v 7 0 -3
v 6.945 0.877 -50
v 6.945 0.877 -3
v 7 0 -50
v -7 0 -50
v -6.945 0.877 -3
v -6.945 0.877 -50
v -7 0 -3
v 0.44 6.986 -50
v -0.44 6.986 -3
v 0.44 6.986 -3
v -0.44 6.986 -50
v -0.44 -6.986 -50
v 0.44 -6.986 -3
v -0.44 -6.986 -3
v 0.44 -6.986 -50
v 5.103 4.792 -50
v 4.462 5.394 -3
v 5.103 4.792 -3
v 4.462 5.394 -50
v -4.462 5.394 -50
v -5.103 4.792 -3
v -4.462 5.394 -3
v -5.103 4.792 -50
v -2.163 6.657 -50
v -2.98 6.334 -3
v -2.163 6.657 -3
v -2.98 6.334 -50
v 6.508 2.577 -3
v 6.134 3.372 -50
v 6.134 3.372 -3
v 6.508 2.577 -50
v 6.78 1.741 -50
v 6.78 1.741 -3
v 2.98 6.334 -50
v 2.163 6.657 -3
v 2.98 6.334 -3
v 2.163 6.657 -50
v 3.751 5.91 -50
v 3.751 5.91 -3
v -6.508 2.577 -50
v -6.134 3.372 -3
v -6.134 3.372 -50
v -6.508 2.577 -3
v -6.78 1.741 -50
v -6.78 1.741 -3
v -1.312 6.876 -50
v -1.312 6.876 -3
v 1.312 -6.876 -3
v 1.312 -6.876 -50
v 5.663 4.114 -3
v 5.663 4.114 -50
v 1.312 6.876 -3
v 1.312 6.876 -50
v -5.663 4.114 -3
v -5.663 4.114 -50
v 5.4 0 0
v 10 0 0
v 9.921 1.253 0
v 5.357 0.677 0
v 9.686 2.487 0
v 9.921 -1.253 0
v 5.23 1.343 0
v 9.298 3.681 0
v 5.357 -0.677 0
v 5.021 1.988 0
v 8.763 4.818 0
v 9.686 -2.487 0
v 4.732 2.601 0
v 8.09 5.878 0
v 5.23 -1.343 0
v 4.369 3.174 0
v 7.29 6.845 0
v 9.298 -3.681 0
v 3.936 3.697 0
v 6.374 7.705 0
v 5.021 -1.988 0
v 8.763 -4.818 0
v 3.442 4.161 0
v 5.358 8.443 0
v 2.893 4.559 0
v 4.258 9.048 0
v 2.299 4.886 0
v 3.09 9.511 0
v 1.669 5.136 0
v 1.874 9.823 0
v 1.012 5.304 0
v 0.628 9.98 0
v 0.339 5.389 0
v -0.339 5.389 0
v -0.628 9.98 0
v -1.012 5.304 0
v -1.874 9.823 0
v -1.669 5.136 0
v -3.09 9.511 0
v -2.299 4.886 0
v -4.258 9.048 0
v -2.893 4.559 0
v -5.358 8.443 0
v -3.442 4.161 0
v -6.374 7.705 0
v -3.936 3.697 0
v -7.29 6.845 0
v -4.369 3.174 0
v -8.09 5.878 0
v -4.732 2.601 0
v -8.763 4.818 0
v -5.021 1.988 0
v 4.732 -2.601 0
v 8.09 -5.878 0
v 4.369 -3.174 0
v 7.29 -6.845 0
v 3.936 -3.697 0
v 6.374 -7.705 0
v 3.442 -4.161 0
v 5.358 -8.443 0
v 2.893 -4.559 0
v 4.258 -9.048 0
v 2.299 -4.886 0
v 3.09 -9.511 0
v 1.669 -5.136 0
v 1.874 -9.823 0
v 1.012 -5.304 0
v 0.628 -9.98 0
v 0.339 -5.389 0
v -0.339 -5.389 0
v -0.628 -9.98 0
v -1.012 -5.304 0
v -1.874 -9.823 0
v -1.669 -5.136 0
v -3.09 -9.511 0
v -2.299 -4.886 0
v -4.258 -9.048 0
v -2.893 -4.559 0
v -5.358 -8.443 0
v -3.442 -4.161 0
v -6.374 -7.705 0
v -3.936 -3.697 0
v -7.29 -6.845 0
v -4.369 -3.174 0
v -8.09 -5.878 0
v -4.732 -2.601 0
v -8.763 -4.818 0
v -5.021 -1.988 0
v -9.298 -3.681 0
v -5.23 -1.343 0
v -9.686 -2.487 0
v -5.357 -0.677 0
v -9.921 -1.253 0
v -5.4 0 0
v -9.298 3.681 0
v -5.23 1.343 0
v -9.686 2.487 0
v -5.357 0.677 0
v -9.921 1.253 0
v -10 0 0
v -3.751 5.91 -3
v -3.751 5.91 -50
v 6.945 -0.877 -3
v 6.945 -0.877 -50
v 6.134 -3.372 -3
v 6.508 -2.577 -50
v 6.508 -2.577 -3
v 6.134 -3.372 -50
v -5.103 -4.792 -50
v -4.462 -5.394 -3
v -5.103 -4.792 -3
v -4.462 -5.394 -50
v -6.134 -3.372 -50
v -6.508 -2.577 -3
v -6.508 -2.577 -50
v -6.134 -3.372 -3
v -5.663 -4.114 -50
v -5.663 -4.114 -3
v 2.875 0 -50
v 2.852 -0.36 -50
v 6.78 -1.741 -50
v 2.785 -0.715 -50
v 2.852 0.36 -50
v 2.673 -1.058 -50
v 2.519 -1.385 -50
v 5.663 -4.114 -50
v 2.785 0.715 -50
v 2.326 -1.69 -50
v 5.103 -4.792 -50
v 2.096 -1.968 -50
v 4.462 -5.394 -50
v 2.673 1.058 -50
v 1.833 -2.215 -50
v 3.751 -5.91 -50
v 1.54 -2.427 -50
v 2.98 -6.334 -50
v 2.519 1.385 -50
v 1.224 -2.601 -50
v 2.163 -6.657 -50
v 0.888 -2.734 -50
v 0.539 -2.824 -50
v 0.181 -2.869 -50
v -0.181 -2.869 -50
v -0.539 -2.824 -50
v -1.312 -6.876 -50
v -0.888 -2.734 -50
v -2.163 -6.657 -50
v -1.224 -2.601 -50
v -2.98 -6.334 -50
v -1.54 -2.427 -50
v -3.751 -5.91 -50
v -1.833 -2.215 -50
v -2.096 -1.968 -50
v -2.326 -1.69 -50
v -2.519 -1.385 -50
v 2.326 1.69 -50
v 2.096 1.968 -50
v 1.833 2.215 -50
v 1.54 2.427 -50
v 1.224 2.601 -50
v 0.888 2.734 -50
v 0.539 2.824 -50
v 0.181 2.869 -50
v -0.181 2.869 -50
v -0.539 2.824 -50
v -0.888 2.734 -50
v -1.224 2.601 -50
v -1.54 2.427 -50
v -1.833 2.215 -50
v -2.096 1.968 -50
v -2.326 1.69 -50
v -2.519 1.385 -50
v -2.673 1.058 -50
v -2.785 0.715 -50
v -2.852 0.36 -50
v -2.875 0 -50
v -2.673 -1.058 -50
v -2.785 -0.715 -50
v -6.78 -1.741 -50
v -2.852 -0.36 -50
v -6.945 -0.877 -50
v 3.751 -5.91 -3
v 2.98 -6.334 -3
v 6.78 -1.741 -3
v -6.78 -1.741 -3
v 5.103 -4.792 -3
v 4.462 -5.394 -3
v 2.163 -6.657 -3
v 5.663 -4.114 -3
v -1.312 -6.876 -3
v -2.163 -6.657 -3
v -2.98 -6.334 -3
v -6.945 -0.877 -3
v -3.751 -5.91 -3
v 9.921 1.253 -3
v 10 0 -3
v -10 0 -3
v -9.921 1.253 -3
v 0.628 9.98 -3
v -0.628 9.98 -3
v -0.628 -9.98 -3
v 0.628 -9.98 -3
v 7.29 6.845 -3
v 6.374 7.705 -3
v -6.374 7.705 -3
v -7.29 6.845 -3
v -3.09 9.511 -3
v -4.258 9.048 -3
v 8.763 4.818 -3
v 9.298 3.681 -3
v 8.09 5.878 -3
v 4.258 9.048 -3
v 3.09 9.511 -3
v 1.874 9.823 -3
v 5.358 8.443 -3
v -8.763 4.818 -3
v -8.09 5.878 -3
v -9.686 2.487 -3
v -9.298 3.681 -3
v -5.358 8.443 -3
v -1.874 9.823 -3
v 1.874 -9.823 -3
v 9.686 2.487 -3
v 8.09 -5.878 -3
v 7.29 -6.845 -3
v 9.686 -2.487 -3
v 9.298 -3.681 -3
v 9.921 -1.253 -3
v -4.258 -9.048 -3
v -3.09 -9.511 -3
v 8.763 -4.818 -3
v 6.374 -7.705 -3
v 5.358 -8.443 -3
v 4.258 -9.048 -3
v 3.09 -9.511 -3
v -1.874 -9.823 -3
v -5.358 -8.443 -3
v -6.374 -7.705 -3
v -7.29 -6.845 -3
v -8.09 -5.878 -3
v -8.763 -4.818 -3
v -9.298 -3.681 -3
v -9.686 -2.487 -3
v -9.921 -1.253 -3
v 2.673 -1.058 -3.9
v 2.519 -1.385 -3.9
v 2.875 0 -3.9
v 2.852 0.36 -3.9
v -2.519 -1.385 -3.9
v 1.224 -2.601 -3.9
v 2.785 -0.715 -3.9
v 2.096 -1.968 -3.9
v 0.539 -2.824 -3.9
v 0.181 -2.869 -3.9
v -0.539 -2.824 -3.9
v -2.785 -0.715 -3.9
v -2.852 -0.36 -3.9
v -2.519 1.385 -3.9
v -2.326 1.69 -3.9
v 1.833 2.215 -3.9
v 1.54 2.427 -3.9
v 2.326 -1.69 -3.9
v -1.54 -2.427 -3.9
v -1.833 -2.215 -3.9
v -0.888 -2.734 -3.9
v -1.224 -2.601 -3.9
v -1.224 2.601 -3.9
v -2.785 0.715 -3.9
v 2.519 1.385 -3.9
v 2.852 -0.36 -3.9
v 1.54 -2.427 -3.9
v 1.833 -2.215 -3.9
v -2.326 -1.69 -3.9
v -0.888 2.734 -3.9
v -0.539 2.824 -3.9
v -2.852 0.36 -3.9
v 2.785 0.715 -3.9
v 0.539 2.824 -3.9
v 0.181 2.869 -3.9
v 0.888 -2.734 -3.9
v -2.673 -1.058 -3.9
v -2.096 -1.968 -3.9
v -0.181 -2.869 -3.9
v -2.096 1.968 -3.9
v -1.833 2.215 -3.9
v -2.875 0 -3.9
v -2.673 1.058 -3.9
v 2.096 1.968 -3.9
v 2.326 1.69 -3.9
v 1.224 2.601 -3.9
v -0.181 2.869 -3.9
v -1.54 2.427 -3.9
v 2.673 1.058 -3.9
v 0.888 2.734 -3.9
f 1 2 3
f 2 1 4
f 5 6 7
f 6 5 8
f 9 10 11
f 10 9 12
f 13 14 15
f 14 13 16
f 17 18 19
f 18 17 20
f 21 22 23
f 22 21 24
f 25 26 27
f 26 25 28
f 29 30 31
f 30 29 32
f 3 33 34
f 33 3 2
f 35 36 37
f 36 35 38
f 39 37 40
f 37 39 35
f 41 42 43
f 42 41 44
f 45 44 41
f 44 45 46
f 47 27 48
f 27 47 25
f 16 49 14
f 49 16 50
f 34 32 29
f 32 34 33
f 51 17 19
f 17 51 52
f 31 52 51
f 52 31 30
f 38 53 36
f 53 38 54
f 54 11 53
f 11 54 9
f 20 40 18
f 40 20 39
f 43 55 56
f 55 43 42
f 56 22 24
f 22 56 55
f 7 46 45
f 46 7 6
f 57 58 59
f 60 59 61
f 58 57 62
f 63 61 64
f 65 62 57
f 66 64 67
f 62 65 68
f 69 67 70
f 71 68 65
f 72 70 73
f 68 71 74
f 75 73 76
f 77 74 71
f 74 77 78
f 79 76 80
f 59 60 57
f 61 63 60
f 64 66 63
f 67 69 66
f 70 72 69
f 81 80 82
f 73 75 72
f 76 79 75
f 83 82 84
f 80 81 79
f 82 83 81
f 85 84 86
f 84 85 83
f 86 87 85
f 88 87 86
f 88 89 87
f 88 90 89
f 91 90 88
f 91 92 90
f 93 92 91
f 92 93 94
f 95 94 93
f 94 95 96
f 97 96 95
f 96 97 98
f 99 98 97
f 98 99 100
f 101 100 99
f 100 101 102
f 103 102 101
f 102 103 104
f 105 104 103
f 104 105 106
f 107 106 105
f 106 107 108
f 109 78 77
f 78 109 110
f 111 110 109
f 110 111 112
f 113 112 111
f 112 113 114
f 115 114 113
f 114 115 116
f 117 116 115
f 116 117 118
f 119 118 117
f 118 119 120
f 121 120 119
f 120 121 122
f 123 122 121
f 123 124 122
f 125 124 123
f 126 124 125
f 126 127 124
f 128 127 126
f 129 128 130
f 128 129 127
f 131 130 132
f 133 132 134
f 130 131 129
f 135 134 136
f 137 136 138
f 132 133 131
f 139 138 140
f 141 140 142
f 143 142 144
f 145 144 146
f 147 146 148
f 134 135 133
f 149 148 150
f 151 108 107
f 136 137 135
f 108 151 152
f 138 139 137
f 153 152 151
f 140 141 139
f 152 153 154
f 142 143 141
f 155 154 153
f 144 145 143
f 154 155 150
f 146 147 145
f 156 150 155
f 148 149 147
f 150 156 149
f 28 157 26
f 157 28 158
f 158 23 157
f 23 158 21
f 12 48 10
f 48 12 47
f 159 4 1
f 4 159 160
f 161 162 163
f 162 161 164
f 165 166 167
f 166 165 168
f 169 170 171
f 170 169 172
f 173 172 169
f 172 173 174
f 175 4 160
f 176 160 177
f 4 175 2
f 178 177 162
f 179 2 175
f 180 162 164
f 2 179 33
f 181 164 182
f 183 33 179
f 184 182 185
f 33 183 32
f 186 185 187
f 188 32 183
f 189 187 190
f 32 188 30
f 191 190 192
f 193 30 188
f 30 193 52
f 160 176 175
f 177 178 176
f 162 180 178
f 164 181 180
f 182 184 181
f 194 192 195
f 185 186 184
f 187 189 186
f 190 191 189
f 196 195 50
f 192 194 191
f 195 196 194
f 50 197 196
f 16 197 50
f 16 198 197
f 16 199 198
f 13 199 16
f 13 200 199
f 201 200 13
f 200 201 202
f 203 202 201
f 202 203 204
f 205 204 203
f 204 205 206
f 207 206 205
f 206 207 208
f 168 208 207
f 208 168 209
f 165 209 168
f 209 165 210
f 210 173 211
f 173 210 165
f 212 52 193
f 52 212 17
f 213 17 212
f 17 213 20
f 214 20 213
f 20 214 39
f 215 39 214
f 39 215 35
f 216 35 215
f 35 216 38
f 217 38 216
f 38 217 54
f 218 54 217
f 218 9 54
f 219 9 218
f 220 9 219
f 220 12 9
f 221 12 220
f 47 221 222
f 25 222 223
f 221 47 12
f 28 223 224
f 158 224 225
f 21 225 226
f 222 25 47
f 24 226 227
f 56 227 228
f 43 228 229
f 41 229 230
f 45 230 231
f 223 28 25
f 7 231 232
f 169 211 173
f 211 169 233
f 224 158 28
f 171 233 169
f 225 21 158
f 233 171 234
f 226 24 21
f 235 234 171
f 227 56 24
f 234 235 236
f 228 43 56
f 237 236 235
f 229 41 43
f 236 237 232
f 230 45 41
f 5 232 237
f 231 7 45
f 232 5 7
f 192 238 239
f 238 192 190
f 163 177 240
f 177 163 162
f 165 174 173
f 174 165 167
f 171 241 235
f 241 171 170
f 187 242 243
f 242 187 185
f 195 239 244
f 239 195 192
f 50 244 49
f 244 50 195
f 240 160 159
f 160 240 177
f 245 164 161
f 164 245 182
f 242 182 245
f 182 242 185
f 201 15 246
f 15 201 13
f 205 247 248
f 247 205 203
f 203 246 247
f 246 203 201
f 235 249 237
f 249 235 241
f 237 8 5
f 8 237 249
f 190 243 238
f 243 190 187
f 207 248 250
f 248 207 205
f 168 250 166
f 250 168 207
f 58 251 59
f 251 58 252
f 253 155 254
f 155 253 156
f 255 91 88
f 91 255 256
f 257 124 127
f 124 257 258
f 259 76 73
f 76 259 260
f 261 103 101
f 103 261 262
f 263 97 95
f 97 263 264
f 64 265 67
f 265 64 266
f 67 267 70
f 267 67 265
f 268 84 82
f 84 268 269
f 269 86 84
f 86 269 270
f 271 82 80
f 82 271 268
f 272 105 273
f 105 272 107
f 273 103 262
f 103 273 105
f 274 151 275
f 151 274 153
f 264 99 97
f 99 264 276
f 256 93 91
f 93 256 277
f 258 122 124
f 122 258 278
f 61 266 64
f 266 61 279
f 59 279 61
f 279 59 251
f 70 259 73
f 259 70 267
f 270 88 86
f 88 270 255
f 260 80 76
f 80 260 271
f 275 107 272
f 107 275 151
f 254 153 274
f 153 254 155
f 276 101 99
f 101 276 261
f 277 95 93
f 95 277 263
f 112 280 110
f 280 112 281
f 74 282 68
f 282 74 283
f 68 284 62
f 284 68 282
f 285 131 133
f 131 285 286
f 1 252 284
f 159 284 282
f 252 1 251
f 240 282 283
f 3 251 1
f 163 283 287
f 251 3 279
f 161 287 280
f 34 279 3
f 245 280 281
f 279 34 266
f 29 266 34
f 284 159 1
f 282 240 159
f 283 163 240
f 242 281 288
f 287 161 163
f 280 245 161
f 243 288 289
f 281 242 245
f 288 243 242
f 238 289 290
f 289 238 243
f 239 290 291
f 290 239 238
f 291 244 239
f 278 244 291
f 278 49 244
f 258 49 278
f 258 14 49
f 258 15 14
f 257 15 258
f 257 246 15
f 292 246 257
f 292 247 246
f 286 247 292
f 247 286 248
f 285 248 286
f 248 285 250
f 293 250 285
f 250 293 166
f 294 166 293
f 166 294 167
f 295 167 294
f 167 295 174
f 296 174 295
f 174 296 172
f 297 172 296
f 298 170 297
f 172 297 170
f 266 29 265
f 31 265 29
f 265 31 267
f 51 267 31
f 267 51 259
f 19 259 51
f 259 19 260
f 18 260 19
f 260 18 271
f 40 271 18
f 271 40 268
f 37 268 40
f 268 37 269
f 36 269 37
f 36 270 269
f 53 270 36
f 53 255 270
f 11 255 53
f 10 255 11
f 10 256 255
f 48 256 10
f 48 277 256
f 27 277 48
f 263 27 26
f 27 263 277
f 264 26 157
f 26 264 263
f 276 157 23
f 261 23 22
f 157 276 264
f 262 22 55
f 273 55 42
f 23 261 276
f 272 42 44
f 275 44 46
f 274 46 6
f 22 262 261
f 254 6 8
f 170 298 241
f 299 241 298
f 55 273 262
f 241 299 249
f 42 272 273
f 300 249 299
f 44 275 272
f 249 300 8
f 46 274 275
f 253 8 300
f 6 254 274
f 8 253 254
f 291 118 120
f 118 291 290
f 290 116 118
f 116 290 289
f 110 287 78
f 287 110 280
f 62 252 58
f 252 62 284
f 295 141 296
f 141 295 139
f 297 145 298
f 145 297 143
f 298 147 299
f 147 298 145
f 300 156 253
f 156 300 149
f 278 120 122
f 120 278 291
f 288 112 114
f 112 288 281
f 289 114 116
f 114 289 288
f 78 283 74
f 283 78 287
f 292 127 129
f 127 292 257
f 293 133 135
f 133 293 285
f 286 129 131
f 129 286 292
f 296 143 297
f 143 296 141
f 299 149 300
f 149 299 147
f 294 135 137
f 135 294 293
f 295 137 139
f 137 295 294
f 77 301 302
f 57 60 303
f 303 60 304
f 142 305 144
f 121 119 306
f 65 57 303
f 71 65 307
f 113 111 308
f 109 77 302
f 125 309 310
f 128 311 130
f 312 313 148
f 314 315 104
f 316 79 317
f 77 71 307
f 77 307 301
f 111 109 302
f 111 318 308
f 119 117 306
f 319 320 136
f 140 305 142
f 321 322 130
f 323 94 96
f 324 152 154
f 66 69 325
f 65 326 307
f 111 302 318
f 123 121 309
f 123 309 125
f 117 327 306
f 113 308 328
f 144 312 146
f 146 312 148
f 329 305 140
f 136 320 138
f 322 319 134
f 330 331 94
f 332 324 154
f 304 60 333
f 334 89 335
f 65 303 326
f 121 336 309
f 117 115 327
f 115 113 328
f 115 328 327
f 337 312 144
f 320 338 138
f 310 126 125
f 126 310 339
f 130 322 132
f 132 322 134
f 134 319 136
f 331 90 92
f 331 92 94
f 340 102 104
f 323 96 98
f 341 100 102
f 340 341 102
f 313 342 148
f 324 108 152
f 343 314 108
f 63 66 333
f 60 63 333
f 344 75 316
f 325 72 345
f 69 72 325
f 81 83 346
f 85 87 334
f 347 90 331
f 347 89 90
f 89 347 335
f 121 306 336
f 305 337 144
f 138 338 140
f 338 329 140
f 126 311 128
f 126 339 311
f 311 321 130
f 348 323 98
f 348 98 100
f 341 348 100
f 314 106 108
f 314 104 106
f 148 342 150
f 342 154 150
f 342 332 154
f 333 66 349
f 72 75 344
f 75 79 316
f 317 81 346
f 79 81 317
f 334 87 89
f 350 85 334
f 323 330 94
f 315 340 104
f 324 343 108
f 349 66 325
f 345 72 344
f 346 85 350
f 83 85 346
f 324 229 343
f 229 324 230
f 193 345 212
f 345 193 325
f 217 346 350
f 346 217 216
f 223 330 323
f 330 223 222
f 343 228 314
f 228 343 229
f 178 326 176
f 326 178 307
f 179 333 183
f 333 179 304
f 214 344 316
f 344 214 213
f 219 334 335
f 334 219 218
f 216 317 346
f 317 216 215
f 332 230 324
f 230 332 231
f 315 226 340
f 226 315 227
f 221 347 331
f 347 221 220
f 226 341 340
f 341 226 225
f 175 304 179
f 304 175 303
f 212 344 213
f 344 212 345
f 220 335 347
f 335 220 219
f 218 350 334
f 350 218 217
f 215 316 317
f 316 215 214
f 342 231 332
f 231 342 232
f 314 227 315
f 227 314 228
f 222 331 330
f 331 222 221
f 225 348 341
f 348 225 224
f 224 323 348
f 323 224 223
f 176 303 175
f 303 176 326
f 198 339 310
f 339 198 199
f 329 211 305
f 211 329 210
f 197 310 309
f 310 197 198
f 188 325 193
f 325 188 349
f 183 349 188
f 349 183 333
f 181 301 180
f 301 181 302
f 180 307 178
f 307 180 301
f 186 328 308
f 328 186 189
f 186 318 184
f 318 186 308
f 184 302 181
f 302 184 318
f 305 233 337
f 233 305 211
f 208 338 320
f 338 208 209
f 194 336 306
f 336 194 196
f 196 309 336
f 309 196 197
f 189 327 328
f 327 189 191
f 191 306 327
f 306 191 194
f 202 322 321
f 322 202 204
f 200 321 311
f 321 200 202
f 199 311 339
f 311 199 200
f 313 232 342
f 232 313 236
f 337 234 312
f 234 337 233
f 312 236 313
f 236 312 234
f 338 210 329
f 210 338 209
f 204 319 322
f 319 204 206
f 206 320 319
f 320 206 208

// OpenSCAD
$fn = 50;


difference() {
	union() {
		translate(v = [0, 0, -50.0000000000]) {
			cylinder(h = 50, r = 7.0000000000);
		}
		translate(v = [0, 0, -3.0000000000]) {
			cylinder(h = 3, r = 10.0000000000);
		}
	}
	union() {
		translate(v = [0, 0, 0]) {
			rotate(a = [0, 0, 0]) {
				difference() {
					union() {
						#translate(v = [0, 0, -50.0000000000]) {
							cylinder(h = 50, r = 2.6000000000);
						}
						#translate(v = [0, 0, -3.9000000000]) {
							cylinder(h = 3.9000000000, r = 7.0000000000, r1 = 2.8750000000, r2 = 5.4000000000);
						}
						#translate(v = [0, 0, -50.0000000000]) {
							cylinder(h = 50, r = 2.8750000000);
						}
						#translate(v = [0, 0, -50.0000000000]) {
							cylinder(h = 50, r = 2.6000000000);
						}
					}
					union();
				}
			}
		}
	}
}
